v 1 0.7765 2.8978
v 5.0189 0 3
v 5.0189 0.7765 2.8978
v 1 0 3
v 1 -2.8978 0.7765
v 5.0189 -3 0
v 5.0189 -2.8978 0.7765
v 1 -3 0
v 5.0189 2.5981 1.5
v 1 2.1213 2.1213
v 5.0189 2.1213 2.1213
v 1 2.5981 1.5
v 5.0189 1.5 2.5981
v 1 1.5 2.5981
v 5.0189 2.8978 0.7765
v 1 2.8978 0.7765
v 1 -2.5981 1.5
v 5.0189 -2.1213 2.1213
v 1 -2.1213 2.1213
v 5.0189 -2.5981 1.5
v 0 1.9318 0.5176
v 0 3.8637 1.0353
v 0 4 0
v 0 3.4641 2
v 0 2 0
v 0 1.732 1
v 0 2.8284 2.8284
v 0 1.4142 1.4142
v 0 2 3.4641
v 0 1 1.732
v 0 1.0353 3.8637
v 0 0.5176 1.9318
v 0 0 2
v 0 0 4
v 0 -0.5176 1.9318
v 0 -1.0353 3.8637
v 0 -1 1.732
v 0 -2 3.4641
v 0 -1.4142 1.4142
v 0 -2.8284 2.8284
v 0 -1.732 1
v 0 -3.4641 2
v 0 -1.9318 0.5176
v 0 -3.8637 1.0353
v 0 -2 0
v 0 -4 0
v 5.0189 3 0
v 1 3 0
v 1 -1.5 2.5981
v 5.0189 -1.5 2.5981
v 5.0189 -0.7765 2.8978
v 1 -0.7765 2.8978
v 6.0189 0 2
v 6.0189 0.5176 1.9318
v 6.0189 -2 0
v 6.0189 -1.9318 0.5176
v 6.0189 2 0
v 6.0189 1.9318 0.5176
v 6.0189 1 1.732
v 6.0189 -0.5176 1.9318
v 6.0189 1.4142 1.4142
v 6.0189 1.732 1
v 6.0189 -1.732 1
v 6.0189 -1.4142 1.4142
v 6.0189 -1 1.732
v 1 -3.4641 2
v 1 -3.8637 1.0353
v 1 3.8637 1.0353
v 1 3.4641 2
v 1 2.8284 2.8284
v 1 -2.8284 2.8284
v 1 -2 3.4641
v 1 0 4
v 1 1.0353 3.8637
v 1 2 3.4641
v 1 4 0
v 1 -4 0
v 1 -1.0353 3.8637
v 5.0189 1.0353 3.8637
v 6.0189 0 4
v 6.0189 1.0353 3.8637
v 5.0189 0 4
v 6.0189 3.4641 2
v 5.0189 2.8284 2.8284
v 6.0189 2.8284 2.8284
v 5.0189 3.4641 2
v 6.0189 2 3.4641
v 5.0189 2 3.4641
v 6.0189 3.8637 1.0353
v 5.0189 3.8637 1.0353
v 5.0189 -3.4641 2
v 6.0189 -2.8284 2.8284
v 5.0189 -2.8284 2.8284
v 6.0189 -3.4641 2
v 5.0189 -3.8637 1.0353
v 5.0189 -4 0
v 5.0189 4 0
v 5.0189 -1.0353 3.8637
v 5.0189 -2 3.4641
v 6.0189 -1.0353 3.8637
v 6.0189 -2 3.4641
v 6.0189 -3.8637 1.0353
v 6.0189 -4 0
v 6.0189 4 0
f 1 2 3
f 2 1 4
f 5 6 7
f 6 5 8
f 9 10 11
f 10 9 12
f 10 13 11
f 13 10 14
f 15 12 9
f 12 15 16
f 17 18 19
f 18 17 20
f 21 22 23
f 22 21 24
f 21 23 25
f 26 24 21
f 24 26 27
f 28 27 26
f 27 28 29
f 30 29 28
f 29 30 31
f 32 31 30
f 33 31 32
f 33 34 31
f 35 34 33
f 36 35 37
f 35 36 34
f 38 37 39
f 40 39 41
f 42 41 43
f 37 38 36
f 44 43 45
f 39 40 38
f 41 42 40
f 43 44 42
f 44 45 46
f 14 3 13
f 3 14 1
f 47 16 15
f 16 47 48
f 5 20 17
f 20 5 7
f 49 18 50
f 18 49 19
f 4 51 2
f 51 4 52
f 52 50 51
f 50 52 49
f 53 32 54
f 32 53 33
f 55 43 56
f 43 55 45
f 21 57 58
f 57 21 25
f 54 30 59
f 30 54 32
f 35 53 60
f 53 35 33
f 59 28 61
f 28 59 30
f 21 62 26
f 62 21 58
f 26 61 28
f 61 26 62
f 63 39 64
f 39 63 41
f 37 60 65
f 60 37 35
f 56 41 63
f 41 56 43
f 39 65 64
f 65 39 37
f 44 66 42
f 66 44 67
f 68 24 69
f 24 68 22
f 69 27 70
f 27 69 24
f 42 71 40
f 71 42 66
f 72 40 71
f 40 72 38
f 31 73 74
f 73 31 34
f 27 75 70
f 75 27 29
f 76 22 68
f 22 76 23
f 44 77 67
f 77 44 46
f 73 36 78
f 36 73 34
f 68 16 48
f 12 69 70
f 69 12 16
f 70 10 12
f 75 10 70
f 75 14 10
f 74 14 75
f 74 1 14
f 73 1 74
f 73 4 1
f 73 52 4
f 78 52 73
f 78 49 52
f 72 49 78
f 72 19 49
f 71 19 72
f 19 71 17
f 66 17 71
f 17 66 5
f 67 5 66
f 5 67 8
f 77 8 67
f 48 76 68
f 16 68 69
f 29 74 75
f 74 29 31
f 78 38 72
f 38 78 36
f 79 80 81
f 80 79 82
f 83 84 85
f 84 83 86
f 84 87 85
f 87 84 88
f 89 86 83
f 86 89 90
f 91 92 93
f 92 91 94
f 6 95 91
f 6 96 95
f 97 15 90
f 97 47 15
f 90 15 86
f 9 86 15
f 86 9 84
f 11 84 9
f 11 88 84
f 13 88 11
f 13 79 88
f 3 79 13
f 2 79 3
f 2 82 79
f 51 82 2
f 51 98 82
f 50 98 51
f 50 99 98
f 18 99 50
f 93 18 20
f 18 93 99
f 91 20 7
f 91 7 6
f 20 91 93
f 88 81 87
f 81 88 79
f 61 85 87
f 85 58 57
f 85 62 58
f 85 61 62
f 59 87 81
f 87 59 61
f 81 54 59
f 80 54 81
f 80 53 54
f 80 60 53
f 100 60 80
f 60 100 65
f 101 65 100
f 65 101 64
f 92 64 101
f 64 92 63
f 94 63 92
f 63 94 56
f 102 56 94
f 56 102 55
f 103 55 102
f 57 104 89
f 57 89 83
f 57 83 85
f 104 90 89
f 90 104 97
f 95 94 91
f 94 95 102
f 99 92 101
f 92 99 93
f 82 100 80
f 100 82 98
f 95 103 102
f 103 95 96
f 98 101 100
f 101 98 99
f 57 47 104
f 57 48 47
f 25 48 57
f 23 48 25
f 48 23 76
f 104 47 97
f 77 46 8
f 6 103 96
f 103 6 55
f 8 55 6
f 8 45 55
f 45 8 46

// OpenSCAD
// file: ../build_environments.scad
// build_environments.scad: modules to build level sections
//

module pool(diameter=10.0, wall_height=2.0, step_width=3.0, connections=[])
{
    difference() {
        union() {
        difference() {
            cylinder(h=0.5,r1=diameter+step_width,r2=diameter+step_width,$fn=48);
            translate([0,0,-0.1])
                cylinder(h=0.7,r1=diameter,r2=diameter,$fn=48);
        }
        difference() {
            cylinder(h=wall_height,r1=diameter+step_width+1.0,r2=diameter+step_width+1.0,$fn=48);
            translate([0,0,-0.1])
                cylinder(h=wall_height+0.2,r1=diameter+step_width,r2=diameter+step_width,$fn=48);
        }
        }
    
        for (c = connections)
        {
            rotate([0,90,0]) {
                angle = atan2(c[1],c[0]);
                rotate([-angle,0,0]) {
                    cylinder(h=diameter+5.0,r1=c[2],r2=c[2],$fn=48);
                }
            }
        }
    }
}

module straight(length=10.0, width=2.0, dy1=0.0, dy2=0.0, dz=0.0)
{
    dims = [0, 0, 0, 0, 0, (dz/length)];
    matrix = [
        [ 1, dims[0], dims[1], 0 ],
        [ dims[2], 1, dims[4], 0 ],
        [ dims[5], dims[3], 1, 0 ],
        [ 0, 0, 0, 1 ]
    ];
    multmatrix(matrix)
    difference() {
        translate([dy1,0,0])
        union() {
            rotate([0,90,0]) {
                difference() {
                    cylinder(h=(length-dy1-dy2),r1=width+1.0,r2=width+1.0,$fn=24);
                    translate([0,0,-0.1])
                        cylinder(h=(length-dy1-dy2+0.2),r1=width,r2=width,$fn=24);
                }
                difference() {
                    cylinder(h=1.0,r1=width+2.0,r2=width+2.0,$fn=24);
                    translate([0,0,-0.1])
                        cylinder(h=1.2,r1=width,r2=width,$fn=24);
                }
                translate([0,0,(length-dy1-dy2)-1.0]) {
                    difference() {
                        cylinder(h=1.0,r1=width+2.0,r2=width+2.0,$fn=24);
                        translate([0,0,-0.1])
                            cylinder(h=1.2,r1=width,r2=width,$fn=24);
                    }
                }
            }
        }
        translate([0,0,-(2*width+4.0)/2])
            cube([3*length,3*length,2*width+4.0],center=true);
    }
}

module curve(p0=[0,0], center=[0,0], dir=1, angle=0.0, width=2.0)
{
    radius = sqrt((p0[0]-center[0])*(p0[0]-center[0]) + (p0[1]-center[1])*(p0[1]-center[1]));
    if (dir == 0) {
        difference() {
            rotate([0,0,-90])
            difference() {
                rotate_extrude(angle = angle, convexity = 10, $fn=32)
                    translate([radius, 0, 0])
                        circle(r = width+1.0,$fn=24);
                rotate([0,0,-1.0])
                    rotate_extrude(angle = angle+2.0, convexity = 10, $fn=32)
                        translate([radius, 0, 0])
                            circle(r = width,$fn=24);
            }
            translate([0,0,-(2*width+4.0)/2])
                cube([5*radius,5*radius,2*width+4.0],center=true);
        }
    }
    else {
        difference() {
            rotate([0,0,90])
            difference() {
                rotate_extrude(angle = -angle, convexity = 10, $fn=32)
                    translate([radius, 0, 0])
                        circle(r = width+1.0,$fn=24);
                rotate([0,0,1.0])
                    rotate_extrude(angle = -angle-2.0, convexity = 10, $fn=32)
                        translate([radius, 0, 0])
                            circle(r = width,$fn=24);
            }
            translate([0,0,-(2*width+4.0)/2])
                cube([5*radius,5*radius,2*width+4.0],center=true);
        }
    }

}

// test pool
//pool(diameter=12.0000, wall_height=3.0000, step_width=3.0000, connections=[[0.0000,-26.0000,2.0000], [23.6074,0.0000,2.0000]]);

// test straight, slope
//straight(length=26.0000, width=2.0000, dy1=11.8322, dy2=6.7082, dz=0.0000);
//straight(length=29.1549, width=12.0000, dy1=0.0000, dy2=0.0000, dz=-15.0000);

// test curve
//curve(p0=[23.6074, 0.0000], center=[23.6074, 5.0000], dir=0, angle=60.1011, width=2.0000);
//curve(p0=[33.6426, 12.4219], center=[37.9771, 9.9295], dir=1, angle=120.4627, width=2.0000);
// main file
use <../build_environments.scad>;
straight(length=6.0189, width=2.0000, dy1=0.0000, dy2=0.0000, dz=0.0000);
